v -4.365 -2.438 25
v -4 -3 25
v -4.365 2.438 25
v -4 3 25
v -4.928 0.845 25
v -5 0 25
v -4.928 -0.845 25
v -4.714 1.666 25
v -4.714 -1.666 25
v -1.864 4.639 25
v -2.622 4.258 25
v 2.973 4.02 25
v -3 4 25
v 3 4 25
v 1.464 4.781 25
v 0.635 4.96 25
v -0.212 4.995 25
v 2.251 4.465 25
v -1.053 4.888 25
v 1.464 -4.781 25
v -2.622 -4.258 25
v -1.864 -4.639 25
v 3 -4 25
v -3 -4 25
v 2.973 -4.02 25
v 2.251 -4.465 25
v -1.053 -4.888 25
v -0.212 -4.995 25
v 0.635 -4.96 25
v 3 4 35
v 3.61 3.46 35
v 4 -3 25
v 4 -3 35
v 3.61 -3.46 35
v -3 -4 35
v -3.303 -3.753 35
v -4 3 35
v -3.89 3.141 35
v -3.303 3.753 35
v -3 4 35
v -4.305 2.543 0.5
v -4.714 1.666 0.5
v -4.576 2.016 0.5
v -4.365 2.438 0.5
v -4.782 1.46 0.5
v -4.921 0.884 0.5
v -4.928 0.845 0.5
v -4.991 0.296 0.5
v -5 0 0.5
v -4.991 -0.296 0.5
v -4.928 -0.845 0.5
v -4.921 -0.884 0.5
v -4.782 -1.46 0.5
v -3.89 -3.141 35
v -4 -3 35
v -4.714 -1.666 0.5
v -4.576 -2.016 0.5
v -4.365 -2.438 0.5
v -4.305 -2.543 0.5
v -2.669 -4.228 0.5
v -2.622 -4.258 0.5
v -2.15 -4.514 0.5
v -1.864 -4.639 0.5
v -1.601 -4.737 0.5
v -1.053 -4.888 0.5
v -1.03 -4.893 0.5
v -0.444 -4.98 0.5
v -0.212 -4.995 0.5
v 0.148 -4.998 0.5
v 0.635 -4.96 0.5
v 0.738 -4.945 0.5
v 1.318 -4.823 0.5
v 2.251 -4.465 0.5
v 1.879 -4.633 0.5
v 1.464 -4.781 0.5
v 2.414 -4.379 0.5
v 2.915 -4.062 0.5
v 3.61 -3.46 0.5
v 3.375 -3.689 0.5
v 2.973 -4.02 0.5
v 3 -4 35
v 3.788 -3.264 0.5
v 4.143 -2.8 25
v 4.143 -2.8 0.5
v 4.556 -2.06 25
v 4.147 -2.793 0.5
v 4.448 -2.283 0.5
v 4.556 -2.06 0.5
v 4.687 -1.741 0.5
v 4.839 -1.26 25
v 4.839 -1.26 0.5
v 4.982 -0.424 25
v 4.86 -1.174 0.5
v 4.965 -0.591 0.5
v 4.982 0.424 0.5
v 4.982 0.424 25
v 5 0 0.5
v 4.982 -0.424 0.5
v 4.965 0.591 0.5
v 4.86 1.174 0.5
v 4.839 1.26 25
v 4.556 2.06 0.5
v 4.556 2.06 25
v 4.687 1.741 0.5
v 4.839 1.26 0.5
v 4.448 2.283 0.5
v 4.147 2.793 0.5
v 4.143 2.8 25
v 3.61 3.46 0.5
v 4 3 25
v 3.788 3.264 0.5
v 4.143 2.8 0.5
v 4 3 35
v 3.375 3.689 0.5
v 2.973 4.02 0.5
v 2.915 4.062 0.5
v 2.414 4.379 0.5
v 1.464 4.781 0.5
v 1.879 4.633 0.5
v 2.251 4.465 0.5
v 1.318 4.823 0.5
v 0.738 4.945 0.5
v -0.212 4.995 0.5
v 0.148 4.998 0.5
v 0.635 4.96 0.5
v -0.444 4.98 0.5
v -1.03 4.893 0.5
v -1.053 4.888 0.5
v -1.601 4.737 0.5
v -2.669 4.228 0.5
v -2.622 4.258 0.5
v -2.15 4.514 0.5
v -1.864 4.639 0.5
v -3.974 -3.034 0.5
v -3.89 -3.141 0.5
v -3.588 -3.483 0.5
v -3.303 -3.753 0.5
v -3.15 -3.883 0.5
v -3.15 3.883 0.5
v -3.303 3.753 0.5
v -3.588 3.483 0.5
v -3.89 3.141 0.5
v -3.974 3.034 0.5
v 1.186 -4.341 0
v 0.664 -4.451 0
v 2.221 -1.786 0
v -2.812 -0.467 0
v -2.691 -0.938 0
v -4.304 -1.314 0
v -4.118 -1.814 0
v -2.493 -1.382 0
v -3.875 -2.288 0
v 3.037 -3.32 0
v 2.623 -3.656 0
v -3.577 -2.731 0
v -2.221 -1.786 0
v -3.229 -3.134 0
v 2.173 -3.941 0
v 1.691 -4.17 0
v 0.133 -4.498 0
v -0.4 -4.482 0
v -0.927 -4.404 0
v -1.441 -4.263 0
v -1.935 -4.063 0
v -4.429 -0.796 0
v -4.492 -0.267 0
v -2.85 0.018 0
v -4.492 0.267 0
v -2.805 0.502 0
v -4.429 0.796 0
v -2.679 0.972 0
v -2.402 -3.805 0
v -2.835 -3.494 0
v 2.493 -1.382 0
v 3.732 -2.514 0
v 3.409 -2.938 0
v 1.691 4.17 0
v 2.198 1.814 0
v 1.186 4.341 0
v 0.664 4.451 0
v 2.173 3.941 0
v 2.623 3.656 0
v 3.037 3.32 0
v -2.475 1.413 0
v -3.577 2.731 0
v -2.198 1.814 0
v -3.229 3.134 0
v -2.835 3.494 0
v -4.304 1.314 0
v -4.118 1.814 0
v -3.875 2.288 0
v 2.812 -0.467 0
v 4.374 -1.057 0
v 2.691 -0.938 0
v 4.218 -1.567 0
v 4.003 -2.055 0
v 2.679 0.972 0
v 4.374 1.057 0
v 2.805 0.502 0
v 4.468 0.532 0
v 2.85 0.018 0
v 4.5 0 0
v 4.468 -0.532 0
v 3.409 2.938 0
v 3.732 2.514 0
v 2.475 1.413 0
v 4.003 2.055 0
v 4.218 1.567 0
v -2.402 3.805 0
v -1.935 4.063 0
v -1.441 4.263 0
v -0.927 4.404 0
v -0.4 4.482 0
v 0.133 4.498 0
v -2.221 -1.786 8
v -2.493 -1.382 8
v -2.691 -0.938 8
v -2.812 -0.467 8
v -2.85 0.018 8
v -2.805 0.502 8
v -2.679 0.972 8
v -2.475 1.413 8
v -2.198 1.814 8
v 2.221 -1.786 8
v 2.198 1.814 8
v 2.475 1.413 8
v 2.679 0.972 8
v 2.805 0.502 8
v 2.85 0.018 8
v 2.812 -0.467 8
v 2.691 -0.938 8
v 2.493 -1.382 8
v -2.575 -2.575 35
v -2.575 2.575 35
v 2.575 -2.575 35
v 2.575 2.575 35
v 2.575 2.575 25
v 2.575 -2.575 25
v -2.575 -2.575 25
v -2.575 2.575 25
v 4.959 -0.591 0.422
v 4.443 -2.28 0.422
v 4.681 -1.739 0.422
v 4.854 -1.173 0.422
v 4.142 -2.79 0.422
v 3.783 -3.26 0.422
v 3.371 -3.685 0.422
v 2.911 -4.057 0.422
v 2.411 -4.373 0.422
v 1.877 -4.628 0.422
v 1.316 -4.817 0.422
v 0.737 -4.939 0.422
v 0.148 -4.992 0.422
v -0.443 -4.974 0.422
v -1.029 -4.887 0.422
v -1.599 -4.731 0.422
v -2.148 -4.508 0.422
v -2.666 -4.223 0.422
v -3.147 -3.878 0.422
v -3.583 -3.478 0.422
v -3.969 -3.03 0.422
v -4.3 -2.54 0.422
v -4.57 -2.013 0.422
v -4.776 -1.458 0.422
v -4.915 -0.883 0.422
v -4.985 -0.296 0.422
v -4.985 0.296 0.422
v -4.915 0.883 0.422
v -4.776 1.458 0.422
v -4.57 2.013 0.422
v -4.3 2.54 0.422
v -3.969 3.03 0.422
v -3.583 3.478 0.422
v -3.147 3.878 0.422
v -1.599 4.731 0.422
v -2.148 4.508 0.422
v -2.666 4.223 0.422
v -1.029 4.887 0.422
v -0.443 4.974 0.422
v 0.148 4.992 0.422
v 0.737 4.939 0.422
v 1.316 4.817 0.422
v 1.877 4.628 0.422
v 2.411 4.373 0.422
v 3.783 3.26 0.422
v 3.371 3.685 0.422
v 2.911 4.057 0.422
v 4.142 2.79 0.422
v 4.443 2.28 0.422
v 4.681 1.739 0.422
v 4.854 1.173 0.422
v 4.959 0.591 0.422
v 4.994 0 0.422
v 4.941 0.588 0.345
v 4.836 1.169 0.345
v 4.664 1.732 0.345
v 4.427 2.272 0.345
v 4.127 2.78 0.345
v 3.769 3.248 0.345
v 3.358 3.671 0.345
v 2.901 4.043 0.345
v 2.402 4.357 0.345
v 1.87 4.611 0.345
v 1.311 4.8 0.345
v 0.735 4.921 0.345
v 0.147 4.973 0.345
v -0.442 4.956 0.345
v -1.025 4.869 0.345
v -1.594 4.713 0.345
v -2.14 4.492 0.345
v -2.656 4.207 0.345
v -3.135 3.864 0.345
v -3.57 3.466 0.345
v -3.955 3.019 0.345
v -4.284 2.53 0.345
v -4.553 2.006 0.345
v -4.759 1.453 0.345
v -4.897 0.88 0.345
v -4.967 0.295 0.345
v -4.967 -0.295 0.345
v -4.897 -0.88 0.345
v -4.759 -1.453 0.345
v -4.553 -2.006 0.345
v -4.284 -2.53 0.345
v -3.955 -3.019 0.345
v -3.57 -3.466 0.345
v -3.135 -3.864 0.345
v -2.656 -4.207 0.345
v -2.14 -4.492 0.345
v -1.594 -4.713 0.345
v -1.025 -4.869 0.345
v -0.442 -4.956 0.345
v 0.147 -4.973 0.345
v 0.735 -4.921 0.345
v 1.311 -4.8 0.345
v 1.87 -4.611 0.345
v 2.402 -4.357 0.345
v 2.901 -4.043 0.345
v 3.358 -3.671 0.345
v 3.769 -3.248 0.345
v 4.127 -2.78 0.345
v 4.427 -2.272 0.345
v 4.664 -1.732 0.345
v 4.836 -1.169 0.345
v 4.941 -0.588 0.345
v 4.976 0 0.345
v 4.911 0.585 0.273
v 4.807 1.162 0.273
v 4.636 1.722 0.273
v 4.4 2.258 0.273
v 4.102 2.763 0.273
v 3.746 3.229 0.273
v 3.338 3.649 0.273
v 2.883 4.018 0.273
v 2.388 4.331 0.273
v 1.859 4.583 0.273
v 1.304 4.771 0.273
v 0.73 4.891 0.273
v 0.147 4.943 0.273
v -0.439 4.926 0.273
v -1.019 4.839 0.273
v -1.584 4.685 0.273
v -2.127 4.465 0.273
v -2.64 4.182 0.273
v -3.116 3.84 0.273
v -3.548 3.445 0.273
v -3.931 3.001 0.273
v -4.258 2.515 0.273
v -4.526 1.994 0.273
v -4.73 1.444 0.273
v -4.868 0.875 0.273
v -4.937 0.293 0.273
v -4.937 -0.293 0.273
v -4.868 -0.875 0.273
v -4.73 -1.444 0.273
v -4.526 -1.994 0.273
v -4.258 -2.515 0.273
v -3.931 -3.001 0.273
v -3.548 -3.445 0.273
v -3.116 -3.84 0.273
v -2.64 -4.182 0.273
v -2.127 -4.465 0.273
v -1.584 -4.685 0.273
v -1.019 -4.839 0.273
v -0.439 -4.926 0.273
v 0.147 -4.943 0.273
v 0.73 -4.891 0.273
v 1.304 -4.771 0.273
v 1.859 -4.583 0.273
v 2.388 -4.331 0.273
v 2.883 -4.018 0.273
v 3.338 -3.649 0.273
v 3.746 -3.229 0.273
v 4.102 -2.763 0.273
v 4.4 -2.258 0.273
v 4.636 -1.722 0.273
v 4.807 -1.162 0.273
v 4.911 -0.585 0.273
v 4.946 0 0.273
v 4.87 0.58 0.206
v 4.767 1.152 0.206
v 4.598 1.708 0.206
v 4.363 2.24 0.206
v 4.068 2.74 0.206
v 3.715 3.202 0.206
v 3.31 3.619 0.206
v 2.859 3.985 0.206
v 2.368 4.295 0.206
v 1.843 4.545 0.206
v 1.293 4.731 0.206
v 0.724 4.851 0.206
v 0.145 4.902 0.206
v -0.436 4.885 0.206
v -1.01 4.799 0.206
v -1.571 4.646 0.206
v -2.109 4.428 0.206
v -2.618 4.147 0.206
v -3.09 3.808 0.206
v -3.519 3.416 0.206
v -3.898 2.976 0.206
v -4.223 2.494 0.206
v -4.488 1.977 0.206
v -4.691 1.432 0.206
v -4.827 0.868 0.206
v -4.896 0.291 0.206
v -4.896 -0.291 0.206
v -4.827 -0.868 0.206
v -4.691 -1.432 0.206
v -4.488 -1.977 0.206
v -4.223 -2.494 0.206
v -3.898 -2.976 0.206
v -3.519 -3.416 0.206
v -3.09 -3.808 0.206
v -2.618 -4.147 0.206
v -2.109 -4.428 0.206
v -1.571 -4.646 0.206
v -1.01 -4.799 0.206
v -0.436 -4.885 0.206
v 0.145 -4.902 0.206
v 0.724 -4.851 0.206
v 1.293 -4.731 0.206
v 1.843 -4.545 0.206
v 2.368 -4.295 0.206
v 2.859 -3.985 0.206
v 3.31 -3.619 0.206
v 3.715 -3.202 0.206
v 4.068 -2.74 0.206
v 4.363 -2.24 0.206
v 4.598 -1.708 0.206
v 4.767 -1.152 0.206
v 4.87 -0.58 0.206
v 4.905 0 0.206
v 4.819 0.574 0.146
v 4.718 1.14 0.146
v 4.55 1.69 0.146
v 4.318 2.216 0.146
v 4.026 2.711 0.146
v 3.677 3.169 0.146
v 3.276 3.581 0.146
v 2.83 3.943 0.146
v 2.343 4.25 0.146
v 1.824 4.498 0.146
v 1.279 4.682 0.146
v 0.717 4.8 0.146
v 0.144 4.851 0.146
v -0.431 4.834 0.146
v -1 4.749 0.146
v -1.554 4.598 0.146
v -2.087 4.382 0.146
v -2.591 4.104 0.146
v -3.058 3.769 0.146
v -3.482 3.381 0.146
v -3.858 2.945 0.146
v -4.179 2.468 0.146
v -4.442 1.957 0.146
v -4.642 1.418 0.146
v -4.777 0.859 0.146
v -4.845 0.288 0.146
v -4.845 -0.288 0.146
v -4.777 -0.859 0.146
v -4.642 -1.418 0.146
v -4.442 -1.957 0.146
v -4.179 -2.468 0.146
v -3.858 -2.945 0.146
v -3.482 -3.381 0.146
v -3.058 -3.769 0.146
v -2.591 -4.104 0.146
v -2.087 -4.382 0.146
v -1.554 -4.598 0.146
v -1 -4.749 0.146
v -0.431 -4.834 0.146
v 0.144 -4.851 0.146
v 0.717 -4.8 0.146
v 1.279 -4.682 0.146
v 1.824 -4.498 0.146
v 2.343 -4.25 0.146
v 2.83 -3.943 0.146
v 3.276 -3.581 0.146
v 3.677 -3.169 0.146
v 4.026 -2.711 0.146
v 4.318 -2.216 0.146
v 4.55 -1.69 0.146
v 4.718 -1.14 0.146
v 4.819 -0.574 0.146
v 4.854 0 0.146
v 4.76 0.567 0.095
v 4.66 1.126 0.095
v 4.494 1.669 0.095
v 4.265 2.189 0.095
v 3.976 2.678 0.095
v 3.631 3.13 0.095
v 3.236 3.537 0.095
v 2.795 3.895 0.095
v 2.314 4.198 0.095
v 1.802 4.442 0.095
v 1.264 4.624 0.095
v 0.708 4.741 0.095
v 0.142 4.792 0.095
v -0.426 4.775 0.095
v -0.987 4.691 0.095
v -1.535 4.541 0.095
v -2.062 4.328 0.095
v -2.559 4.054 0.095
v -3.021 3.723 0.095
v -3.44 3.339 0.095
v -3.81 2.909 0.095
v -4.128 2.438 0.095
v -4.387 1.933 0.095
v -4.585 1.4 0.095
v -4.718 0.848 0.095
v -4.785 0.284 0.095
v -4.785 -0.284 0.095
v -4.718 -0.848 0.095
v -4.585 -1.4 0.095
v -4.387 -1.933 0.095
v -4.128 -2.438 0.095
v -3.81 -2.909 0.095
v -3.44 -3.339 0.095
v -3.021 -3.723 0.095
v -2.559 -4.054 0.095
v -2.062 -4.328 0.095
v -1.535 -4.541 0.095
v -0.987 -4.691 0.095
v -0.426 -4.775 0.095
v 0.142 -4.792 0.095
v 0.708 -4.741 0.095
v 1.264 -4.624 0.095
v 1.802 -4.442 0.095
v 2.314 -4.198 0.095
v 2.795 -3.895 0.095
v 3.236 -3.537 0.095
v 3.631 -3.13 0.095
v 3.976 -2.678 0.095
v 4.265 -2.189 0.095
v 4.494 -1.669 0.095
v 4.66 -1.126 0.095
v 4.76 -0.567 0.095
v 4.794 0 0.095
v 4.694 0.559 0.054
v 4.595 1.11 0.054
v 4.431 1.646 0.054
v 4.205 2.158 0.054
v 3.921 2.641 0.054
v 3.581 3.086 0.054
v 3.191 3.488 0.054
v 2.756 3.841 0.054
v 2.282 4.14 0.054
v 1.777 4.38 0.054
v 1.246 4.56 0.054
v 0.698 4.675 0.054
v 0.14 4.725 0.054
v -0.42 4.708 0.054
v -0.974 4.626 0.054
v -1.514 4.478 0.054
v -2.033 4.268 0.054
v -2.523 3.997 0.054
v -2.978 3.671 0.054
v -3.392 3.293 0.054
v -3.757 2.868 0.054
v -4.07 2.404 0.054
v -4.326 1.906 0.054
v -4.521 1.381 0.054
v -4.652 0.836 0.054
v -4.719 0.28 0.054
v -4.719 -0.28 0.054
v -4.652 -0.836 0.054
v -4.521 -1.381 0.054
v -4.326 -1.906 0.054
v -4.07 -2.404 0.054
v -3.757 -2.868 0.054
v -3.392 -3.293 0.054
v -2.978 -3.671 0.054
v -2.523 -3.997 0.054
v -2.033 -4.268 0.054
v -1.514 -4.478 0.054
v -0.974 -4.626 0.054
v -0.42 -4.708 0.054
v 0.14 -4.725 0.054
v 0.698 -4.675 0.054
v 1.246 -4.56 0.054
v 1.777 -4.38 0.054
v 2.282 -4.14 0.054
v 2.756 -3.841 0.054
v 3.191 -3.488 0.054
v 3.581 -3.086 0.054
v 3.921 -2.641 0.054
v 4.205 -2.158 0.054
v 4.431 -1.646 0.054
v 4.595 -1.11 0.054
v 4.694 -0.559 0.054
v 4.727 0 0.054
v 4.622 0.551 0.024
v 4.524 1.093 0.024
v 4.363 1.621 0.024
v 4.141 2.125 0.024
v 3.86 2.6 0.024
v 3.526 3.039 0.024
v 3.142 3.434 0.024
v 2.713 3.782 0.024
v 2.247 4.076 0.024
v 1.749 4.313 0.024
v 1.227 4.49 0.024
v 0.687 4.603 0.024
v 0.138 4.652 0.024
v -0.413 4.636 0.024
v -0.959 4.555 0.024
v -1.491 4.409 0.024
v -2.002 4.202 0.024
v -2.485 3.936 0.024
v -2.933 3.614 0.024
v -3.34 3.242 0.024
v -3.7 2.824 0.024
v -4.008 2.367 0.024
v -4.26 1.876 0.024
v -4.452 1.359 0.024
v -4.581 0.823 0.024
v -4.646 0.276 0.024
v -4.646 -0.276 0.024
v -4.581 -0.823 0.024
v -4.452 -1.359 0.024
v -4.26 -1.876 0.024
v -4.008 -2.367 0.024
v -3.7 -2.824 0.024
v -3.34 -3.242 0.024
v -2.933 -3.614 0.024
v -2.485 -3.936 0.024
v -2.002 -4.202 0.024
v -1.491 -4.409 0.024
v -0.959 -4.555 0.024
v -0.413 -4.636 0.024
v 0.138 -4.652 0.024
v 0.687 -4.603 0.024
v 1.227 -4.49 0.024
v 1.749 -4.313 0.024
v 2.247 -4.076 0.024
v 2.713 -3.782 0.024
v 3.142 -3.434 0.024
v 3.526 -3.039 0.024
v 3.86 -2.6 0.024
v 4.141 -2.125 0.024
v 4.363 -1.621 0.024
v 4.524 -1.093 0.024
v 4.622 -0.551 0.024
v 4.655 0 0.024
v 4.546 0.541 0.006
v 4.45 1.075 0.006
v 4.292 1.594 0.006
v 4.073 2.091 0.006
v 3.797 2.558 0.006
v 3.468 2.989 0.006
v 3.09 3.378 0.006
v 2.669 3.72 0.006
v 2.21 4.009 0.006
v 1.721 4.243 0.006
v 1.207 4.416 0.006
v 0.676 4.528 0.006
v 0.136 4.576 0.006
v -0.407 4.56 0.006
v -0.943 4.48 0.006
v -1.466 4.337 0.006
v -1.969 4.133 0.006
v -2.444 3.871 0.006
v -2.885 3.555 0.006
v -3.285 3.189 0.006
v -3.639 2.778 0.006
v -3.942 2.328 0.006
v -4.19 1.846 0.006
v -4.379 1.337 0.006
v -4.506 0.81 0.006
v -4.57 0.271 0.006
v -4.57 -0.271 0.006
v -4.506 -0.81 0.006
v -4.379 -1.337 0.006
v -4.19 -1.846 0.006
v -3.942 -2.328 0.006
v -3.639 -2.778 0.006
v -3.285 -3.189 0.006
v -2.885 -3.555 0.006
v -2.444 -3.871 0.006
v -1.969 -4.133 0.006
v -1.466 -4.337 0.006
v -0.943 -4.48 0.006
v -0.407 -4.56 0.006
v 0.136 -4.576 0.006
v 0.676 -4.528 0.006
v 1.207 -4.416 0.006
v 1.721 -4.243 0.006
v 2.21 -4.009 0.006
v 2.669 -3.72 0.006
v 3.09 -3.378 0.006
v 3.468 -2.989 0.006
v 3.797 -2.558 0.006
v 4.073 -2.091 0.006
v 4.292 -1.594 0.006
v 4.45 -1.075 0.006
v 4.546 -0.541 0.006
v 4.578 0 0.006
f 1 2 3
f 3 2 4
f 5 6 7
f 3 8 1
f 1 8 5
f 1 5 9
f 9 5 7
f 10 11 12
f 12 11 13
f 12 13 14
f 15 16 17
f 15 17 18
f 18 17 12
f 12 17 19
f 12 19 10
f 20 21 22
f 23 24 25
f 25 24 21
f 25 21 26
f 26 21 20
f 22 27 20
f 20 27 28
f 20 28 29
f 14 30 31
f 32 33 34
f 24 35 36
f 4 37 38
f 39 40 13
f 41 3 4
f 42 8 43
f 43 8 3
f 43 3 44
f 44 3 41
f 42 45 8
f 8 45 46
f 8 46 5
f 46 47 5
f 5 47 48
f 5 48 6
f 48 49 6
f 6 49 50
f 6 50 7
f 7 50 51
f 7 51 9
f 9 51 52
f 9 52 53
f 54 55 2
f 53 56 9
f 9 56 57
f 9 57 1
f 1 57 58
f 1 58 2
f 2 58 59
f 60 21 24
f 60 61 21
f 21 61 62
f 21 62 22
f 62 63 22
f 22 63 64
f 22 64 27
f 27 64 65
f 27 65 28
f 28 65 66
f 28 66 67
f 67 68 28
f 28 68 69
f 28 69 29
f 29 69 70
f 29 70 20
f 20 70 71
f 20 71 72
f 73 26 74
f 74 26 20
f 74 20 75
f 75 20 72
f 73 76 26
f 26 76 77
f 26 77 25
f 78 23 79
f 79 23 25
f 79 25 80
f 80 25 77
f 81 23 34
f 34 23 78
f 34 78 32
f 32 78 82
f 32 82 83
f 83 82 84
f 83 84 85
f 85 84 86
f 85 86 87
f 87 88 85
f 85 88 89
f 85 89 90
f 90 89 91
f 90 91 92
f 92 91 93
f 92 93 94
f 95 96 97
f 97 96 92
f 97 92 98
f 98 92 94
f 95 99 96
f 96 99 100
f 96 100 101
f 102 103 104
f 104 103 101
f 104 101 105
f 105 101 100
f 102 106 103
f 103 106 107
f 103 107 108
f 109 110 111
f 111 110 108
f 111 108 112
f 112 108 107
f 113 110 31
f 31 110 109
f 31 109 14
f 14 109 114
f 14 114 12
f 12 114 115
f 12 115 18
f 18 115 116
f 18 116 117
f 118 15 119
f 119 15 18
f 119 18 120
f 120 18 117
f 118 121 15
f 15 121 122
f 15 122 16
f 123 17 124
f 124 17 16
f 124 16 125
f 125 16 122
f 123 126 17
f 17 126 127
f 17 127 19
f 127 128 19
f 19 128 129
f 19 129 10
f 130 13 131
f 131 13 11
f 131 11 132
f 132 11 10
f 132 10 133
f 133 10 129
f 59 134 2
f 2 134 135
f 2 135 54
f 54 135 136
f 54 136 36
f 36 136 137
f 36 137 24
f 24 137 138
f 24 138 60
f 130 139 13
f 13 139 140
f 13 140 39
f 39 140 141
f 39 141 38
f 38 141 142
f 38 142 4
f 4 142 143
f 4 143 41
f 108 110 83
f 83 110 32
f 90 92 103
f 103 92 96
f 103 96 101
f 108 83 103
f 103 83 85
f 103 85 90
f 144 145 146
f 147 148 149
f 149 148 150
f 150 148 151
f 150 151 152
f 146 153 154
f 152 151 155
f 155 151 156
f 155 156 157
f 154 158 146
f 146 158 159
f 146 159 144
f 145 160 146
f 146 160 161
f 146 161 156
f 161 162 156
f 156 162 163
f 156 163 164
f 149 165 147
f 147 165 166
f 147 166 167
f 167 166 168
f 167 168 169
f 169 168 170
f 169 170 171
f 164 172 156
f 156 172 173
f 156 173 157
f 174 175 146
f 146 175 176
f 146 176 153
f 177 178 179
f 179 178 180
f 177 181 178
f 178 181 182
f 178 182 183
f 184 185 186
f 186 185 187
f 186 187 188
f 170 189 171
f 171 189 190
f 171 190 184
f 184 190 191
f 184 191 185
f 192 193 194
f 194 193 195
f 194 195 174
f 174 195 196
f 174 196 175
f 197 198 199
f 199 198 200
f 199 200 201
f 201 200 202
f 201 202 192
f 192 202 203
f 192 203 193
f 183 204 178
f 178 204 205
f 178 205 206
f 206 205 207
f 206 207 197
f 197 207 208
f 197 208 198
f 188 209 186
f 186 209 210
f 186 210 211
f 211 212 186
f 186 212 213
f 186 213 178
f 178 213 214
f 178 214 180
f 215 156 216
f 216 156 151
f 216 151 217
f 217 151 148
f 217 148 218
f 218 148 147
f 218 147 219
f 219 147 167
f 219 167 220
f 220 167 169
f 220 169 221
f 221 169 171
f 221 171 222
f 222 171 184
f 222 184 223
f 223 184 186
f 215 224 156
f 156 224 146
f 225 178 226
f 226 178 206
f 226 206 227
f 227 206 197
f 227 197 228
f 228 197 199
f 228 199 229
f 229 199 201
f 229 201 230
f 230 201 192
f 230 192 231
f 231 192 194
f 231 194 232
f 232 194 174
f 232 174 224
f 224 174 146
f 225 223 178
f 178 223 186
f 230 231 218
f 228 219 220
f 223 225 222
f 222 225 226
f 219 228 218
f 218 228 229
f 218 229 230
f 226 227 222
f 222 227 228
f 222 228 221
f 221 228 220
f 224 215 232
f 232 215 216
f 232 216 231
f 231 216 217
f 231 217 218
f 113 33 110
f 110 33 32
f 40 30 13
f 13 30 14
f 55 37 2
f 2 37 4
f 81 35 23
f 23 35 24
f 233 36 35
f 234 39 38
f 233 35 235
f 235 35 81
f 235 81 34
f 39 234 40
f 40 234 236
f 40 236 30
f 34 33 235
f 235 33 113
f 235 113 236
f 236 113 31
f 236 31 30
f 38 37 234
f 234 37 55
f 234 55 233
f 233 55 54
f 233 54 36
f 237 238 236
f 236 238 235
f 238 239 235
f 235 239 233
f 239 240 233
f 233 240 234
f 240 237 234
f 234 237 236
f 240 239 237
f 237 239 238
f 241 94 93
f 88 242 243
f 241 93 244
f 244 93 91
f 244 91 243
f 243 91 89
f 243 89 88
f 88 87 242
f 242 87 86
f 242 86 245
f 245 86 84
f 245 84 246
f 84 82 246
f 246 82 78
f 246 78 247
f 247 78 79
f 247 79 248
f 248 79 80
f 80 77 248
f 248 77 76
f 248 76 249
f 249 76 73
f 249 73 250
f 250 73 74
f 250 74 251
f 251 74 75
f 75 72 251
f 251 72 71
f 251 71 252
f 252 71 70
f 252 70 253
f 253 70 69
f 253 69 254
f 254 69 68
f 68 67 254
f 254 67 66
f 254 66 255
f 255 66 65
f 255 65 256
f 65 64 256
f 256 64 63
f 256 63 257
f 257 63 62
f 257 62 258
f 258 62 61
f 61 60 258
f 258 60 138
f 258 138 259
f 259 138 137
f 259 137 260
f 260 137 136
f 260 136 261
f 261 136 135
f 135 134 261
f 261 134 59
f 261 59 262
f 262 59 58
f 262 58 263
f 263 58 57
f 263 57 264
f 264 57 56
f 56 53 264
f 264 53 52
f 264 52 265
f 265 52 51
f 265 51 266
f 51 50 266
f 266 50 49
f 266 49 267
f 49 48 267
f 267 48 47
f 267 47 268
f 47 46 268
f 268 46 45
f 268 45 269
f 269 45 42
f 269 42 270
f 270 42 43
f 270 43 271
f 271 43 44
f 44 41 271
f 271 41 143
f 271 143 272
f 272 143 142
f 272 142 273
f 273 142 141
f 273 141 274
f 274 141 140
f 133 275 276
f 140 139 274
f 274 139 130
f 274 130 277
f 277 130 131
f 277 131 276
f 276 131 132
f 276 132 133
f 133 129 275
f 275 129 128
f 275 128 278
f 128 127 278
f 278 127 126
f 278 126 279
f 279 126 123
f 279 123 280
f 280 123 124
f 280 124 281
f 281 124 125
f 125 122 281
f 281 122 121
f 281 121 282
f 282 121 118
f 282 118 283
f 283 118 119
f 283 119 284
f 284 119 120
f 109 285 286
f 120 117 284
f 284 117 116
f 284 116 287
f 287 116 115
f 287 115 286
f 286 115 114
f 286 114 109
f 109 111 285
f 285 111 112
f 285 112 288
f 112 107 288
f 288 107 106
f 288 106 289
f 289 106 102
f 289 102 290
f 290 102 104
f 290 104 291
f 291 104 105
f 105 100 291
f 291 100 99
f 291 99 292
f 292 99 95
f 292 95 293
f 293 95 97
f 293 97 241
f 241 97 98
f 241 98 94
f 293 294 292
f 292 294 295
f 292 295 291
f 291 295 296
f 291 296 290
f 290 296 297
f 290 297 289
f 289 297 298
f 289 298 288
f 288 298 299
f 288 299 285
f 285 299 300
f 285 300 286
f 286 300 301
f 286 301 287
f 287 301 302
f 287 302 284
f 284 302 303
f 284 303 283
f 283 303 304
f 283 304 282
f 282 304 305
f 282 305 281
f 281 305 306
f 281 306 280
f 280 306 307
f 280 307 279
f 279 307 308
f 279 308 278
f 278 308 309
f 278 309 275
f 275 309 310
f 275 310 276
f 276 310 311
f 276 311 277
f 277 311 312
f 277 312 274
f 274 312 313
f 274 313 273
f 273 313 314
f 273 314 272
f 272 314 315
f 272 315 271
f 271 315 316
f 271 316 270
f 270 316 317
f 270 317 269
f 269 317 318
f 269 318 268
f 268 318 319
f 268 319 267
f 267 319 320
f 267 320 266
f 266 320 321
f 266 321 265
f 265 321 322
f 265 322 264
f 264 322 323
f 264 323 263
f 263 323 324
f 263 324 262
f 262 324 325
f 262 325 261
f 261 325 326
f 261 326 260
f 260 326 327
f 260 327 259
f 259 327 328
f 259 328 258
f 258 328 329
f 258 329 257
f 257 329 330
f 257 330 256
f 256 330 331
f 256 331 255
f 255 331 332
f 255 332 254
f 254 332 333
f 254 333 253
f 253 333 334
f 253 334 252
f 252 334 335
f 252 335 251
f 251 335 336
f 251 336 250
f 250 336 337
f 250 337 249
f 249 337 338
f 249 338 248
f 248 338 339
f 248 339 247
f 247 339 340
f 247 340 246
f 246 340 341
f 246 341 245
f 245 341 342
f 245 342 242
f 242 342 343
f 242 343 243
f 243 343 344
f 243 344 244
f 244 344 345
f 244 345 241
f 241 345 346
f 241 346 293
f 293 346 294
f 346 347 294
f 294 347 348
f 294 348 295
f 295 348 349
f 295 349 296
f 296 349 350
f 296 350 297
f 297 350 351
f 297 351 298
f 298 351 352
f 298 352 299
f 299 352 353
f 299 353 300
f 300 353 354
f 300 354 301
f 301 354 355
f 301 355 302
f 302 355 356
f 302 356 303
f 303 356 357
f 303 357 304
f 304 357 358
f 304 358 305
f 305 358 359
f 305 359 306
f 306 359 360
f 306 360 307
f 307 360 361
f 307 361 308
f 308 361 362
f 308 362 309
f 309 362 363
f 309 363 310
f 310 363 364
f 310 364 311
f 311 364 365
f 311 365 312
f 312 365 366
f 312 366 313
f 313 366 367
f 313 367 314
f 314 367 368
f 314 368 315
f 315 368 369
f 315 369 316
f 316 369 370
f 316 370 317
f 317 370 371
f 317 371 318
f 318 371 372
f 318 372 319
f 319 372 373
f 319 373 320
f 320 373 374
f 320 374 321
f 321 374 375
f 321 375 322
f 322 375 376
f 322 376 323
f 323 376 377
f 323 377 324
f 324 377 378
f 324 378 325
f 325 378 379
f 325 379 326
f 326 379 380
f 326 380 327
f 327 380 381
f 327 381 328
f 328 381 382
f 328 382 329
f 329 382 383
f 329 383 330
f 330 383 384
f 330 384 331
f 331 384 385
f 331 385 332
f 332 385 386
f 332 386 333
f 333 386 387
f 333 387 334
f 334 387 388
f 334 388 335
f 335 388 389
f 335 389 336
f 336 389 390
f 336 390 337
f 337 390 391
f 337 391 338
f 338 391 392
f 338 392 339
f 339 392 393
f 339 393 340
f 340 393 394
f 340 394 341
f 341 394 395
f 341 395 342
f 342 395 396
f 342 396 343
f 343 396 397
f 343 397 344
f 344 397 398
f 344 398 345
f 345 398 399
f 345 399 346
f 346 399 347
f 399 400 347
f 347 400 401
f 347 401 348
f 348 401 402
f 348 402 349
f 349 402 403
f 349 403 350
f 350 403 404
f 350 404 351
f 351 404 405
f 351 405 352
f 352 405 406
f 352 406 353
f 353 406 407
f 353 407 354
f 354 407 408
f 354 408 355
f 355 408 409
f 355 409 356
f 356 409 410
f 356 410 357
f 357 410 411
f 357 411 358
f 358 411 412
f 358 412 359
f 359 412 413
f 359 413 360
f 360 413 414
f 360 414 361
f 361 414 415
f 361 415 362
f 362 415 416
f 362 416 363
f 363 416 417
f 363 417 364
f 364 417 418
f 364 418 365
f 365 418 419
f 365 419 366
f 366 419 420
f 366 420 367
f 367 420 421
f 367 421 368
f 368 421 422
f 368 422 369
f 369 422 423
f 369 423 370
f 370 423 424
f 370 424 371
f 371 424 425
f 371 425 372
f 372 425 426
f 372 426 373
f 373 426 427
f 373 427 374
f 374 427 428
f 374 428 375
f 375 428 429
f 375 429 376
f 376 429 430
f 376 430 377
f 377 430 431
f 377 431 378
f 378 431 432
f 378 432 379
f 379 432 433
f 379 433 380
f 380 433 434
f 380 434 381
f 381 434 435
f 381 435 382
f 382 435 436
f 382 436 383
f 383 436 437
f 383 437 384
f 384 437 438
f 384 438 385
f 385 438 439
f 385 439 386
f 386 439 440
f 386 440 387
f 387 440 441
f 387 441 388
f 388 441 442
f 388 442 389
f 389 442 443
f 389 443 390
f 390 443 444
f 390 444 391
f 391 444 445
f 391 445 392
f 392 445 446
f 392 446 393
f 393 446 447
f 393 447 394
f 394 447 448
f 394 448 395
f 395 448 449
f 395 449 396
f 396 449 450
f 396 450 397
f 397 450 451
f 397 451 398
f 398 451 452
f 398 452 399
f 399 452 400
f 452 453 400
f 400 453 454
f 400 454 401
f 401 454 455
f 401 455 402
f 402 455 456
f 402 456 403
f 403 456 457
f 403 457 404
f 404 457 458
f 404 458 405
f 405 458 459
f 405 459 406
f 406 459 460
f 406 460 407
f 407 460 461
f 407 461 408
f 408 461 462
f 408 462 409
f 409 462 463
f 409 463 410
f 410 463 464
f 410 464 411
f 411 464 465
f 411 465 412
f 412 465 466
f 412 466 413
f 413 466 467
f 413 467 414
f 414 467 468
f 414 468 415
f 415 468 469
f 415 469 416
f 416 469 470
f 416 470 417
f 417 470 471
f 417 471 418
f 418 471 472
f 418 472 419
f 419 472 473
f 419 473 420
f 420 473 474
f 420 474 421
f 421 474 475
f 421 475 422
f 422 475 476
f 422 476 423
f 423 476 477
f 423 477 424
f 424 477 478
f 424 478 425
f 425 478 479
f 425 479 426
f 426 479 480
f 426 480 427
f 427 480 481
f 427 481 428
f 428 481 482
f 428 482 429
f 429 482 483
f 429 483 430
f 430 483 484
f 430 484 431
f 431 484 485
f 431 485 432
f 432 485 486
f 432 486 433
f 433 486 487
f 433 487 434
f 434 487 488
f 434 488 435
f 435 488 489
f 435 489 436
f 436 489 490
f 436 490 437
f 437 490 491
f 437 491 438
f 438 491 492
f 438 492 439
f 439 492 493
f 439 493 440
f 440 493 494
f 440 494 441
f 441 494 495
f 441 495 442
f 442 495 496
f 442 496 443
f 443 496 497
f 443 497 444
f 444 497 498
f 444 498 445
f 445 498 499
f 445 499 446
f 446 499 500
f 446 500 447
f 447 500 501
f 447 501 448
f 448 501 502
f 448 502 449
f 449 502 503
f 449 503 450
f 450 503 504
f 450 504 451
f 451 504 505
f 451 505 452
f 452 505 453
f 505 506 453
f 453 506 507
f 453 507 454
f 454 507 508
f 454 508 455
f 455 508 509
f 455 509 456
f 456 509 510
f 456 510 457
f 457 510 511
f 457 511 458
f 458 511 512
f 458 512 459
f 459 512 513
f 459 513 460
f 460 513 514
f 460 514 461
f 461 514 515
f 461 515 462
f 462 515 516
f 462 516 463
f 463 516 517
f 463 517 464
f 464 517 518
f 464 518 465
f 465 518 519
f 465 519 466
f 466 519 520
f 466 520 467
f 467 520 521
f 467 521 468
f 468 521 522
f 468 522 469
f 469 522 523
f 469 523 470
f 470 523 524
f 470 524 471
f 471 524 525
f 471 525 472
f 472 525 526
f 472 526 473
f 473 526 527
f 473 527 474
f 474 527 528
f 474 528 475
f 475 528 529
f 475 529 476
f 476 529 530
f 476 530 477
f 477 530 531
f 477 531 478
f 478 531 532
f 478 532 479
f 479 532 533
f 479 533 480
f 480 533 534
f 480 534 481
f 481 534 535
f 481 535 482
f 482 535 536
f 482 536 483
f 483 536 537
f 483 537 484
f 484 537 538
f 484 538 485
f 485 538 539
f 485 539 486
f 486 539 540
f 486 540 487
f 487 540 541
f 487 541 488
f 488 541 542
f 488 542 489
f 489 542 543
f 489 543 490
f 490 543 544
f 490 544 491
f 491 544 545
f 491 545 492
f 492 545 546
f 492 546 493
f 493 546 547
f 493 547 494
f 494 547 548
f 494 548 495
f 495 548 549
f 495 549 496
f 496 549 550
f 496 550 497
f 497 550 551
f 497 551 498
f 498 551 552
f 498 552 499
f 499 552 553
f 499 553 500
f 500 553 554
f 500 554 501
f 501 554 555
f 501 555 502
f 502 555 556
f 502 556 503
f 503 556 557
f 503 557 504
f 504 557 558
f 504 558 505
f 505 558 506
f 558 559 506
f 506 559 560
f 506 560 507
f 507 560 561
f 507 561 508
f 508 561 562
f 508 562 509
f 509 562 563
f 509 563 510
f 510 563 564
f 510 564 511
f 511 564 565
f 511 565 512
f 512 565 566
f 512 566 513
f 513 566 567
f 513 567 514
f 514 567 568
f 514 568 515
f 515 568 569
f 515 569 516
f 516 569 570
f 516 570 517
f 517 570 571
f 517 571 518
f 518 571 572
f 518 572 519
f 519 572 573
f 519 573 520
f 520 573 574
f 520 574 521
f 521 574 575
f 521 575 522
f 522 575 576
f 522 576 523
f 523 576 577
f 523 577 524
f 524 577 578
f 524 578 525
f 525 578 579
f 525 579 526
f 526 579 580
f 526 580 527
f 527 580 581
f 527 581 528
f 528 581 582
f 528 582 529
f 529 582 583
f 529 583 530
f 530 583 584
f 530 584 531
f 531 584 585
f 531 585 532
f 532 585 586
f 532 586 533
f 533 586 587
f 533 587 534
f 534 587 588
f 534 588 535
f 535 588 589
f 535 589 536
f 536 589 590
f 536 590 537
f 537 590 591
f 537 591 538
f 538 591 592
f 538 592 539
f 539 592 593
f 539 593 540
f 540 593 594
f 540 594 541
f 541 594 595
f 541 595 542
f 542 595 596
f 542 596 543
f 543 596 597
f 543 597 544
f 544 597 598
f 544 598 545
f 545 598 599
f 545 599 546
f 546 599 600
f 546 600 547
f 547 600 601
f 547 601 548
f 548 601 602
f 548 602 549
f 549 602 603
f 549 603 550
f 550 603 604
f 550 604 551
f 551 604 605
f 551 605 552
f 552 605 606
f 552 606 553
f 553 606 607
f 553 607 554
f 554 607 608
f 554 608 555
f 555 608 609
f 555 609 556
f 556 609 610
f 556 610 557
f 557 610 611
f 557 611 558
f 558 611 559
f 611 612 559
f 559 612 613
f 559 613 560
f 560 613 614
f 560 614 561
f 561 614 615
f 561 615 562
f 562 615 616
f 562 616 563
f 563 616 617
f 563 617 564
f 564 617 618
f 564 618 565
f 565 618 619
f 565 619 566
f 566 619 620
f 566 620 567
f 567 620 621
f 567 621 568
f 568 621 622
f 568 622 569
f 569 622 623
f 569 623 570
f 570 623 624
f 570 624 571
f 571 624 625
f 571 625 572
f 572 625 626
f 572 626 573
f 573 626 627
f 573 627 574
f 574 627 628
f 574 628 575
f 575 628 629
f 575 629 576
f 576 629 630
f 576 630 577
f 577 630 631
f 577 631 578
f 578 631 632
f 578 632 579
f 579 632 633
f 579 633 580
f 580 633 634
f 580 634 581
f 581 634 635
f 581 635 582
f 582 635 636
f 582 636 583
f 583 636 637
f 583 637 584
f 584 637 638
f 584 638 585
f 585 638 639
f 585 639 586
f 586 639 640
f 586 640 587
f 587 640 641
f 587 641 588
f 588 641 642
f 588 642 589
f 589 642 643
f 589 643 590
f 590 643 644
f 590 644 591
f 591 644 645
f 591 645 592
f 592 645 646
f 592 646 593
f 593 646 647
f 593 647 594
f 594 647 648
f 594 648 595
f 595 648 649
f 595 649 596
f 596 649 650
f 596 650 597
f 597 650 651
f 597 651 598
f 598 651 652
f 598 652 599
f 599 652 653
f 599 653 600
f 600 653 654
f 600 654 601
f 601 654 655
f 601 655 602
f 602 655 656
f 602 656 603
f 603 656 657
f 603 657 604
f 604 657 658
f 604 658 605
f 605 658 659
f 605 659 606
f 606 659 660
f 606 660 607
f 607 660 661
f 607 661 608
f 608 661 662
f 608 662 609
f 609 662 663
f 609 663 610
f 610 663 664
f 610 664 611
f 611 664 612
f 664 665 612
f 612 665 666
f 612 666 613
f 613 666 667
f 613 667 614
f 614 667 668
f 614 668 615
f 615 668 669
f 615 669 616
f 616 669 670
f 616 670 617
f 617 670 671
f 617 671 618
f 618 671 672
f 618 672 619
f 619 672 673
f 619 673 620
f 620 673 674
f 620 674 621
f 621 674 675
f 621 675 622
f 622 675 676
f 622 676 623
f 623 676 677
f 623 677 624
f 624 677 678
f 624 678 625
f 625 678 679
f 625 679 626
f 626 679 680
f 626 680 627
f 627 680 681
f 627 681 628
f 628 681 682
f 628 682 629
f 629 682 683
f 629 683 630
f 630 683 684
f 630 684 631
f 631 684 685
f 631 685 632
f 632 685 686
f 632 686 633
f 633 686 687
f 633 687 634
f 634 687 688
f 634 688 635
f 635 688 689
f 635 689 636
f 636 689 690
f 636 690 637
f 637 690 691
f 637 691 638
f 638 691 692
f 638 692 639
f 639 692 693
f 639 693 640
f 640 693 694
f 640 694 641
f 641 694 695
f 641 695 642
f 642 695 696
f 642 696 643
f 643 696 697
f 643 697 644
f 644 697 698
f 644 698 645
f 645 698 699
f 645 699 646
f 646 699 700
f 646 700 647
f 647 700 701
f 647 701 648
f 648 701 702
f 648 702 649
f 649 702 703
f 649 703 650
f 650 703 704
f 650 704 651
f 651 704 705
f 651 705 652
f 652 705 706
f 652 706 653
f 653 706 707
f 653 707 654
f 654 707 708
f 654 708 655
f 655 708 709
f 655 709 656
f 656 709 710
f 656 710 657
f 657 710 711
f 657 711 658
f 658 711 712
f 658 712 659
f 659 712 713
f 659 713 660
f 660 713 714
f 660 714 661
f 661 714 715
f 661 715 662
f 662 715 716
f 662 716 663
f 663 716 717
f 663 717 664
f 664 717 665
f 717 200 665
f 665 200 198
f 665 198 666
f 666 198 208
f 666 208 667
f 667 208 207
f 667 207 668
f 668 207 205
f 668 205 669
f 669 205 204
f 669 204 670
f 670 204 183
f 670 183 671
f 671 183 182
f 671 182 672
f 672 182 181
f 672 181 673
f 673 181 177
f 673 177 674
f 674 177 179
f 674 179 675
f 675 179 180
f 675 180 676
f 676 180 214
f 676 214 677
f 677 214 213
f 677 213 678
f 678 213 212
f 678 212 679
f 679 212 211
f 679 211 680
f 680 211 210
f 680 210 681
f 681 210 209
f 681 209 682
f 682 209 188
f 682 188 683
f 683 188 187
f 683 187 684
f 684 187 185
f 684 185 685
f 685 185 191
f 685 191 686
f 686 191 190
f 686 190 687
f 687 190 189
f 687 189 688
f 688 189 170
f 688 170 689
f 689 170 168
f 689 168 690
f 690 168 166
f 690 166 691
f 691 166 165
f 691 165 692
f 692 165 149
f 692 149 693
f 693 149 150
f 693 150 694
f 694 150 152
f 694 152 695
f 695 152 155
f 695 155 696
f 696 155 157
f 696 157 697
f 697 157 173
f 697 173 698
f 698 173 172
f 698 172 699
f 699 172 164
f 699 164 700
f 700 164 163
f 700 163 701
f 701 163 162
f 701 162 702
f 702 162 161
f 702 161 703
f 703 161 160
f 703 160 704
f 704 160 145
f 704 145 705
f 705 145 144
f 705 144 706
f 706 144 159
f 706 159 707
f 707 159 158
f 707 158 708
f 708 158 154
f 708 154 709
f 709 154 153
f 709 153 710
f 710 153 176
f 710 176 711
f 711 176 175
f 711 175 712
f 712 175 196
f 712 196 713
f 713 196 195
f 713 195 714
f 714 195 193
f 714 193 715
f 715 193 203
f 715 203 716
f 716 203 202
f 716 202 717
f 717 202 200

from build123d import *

# Parameters (mm, degrees)
SKETCH1_R           = 5
BOSS_EXTRUDE1_DEPTH = 25
CUT_EXTRUDE1_DEPTH  = 8
BOSS_EXTRUDE2_DEPTH = 10
SKETCH4_W           = 5.15
SKETCH4_H           = 5.15
CUT_EXTRUDE2_DEPTH  = 10
FILLET1_R           = 0.5


with BuildPart() as part:
    # Sketch1 → Boss-Extrude1 (new body)
    with BuildSketch(Plane.XY):
        Circle(SKETCH1_R)
    extrude(amount=BOSS_EXTRUDE1_DEPTH)

    # Sketch2 → Cut-Extrude1 (cut)
    with BuildSketch(Plane(origin=(0, 0, 0), x_dir=(-1, 0, 0), z_dir=(0, 0, -1))):
        with BuildLine():
            Line((-2.221320345, -1.785563195), (2.221320345, -1.785563195))
            ThreePointArc((2.221320345, -1.785563195), (2.849942511, 0.018102015), (2.198459265, 1.813636364))
            Line((2.198459265, 1.813636364), (-2.198459265, 1.813636364))
            ThreePointArc((-2.198459265, 1.813636364), (-2.849942511, 0.018102015), (-2.221320345, -1.785563195))
        make_face()
    extrude(amount=-CUT_EXTRUDE1_DEPTH, mode=Mode.SUBTRACT)

    # Sketch3 → Boss-Extrude2 (add)
    with BuildSketch(Plane.XY.offset(25)):
        with BuildLine():
            ThreePointArc((-4, -3), (-3.535533906, -3.535533906), (-3, -4))
            Line((-3, -4), (3, -4))
            ThreePointArc((3, -4), (3.535533906, -3.535533906), (4, -3))
            Line((4, -3), (4, 3))
            ThreePointArc((4, 3), (3.535533906, 3.535533906), (3, 4))
            Line((3, 4), (-3, 4))
            ThreePointArc((-3, 4), (-3.535533906, 3.535533906), (-4, 3))
            Line((-4, 3), (-4, -3))
        make_face()
    extrude(amount=BOSS_EXTRUDE2_DEPTH)

    # Sketch4 → Cut-Extrude2 (cut)
    with BuildSketch(Plane.XY.offset(35)):
        Rectangle(SKETCH4_W, SKETCH4_H)
    extrude(amount=-CUT_EXTRUDE2_DEPTH, mode=Mode.SUBTRACT)

    # Fillet1
    fillet1_edges = [part.edges().sort_by_distance(p)[0] for p in [
        (-5, 0, 0),
    ]]
    fillet(fillet1_edges, radius=FILLET1_R)


solid = part.part
